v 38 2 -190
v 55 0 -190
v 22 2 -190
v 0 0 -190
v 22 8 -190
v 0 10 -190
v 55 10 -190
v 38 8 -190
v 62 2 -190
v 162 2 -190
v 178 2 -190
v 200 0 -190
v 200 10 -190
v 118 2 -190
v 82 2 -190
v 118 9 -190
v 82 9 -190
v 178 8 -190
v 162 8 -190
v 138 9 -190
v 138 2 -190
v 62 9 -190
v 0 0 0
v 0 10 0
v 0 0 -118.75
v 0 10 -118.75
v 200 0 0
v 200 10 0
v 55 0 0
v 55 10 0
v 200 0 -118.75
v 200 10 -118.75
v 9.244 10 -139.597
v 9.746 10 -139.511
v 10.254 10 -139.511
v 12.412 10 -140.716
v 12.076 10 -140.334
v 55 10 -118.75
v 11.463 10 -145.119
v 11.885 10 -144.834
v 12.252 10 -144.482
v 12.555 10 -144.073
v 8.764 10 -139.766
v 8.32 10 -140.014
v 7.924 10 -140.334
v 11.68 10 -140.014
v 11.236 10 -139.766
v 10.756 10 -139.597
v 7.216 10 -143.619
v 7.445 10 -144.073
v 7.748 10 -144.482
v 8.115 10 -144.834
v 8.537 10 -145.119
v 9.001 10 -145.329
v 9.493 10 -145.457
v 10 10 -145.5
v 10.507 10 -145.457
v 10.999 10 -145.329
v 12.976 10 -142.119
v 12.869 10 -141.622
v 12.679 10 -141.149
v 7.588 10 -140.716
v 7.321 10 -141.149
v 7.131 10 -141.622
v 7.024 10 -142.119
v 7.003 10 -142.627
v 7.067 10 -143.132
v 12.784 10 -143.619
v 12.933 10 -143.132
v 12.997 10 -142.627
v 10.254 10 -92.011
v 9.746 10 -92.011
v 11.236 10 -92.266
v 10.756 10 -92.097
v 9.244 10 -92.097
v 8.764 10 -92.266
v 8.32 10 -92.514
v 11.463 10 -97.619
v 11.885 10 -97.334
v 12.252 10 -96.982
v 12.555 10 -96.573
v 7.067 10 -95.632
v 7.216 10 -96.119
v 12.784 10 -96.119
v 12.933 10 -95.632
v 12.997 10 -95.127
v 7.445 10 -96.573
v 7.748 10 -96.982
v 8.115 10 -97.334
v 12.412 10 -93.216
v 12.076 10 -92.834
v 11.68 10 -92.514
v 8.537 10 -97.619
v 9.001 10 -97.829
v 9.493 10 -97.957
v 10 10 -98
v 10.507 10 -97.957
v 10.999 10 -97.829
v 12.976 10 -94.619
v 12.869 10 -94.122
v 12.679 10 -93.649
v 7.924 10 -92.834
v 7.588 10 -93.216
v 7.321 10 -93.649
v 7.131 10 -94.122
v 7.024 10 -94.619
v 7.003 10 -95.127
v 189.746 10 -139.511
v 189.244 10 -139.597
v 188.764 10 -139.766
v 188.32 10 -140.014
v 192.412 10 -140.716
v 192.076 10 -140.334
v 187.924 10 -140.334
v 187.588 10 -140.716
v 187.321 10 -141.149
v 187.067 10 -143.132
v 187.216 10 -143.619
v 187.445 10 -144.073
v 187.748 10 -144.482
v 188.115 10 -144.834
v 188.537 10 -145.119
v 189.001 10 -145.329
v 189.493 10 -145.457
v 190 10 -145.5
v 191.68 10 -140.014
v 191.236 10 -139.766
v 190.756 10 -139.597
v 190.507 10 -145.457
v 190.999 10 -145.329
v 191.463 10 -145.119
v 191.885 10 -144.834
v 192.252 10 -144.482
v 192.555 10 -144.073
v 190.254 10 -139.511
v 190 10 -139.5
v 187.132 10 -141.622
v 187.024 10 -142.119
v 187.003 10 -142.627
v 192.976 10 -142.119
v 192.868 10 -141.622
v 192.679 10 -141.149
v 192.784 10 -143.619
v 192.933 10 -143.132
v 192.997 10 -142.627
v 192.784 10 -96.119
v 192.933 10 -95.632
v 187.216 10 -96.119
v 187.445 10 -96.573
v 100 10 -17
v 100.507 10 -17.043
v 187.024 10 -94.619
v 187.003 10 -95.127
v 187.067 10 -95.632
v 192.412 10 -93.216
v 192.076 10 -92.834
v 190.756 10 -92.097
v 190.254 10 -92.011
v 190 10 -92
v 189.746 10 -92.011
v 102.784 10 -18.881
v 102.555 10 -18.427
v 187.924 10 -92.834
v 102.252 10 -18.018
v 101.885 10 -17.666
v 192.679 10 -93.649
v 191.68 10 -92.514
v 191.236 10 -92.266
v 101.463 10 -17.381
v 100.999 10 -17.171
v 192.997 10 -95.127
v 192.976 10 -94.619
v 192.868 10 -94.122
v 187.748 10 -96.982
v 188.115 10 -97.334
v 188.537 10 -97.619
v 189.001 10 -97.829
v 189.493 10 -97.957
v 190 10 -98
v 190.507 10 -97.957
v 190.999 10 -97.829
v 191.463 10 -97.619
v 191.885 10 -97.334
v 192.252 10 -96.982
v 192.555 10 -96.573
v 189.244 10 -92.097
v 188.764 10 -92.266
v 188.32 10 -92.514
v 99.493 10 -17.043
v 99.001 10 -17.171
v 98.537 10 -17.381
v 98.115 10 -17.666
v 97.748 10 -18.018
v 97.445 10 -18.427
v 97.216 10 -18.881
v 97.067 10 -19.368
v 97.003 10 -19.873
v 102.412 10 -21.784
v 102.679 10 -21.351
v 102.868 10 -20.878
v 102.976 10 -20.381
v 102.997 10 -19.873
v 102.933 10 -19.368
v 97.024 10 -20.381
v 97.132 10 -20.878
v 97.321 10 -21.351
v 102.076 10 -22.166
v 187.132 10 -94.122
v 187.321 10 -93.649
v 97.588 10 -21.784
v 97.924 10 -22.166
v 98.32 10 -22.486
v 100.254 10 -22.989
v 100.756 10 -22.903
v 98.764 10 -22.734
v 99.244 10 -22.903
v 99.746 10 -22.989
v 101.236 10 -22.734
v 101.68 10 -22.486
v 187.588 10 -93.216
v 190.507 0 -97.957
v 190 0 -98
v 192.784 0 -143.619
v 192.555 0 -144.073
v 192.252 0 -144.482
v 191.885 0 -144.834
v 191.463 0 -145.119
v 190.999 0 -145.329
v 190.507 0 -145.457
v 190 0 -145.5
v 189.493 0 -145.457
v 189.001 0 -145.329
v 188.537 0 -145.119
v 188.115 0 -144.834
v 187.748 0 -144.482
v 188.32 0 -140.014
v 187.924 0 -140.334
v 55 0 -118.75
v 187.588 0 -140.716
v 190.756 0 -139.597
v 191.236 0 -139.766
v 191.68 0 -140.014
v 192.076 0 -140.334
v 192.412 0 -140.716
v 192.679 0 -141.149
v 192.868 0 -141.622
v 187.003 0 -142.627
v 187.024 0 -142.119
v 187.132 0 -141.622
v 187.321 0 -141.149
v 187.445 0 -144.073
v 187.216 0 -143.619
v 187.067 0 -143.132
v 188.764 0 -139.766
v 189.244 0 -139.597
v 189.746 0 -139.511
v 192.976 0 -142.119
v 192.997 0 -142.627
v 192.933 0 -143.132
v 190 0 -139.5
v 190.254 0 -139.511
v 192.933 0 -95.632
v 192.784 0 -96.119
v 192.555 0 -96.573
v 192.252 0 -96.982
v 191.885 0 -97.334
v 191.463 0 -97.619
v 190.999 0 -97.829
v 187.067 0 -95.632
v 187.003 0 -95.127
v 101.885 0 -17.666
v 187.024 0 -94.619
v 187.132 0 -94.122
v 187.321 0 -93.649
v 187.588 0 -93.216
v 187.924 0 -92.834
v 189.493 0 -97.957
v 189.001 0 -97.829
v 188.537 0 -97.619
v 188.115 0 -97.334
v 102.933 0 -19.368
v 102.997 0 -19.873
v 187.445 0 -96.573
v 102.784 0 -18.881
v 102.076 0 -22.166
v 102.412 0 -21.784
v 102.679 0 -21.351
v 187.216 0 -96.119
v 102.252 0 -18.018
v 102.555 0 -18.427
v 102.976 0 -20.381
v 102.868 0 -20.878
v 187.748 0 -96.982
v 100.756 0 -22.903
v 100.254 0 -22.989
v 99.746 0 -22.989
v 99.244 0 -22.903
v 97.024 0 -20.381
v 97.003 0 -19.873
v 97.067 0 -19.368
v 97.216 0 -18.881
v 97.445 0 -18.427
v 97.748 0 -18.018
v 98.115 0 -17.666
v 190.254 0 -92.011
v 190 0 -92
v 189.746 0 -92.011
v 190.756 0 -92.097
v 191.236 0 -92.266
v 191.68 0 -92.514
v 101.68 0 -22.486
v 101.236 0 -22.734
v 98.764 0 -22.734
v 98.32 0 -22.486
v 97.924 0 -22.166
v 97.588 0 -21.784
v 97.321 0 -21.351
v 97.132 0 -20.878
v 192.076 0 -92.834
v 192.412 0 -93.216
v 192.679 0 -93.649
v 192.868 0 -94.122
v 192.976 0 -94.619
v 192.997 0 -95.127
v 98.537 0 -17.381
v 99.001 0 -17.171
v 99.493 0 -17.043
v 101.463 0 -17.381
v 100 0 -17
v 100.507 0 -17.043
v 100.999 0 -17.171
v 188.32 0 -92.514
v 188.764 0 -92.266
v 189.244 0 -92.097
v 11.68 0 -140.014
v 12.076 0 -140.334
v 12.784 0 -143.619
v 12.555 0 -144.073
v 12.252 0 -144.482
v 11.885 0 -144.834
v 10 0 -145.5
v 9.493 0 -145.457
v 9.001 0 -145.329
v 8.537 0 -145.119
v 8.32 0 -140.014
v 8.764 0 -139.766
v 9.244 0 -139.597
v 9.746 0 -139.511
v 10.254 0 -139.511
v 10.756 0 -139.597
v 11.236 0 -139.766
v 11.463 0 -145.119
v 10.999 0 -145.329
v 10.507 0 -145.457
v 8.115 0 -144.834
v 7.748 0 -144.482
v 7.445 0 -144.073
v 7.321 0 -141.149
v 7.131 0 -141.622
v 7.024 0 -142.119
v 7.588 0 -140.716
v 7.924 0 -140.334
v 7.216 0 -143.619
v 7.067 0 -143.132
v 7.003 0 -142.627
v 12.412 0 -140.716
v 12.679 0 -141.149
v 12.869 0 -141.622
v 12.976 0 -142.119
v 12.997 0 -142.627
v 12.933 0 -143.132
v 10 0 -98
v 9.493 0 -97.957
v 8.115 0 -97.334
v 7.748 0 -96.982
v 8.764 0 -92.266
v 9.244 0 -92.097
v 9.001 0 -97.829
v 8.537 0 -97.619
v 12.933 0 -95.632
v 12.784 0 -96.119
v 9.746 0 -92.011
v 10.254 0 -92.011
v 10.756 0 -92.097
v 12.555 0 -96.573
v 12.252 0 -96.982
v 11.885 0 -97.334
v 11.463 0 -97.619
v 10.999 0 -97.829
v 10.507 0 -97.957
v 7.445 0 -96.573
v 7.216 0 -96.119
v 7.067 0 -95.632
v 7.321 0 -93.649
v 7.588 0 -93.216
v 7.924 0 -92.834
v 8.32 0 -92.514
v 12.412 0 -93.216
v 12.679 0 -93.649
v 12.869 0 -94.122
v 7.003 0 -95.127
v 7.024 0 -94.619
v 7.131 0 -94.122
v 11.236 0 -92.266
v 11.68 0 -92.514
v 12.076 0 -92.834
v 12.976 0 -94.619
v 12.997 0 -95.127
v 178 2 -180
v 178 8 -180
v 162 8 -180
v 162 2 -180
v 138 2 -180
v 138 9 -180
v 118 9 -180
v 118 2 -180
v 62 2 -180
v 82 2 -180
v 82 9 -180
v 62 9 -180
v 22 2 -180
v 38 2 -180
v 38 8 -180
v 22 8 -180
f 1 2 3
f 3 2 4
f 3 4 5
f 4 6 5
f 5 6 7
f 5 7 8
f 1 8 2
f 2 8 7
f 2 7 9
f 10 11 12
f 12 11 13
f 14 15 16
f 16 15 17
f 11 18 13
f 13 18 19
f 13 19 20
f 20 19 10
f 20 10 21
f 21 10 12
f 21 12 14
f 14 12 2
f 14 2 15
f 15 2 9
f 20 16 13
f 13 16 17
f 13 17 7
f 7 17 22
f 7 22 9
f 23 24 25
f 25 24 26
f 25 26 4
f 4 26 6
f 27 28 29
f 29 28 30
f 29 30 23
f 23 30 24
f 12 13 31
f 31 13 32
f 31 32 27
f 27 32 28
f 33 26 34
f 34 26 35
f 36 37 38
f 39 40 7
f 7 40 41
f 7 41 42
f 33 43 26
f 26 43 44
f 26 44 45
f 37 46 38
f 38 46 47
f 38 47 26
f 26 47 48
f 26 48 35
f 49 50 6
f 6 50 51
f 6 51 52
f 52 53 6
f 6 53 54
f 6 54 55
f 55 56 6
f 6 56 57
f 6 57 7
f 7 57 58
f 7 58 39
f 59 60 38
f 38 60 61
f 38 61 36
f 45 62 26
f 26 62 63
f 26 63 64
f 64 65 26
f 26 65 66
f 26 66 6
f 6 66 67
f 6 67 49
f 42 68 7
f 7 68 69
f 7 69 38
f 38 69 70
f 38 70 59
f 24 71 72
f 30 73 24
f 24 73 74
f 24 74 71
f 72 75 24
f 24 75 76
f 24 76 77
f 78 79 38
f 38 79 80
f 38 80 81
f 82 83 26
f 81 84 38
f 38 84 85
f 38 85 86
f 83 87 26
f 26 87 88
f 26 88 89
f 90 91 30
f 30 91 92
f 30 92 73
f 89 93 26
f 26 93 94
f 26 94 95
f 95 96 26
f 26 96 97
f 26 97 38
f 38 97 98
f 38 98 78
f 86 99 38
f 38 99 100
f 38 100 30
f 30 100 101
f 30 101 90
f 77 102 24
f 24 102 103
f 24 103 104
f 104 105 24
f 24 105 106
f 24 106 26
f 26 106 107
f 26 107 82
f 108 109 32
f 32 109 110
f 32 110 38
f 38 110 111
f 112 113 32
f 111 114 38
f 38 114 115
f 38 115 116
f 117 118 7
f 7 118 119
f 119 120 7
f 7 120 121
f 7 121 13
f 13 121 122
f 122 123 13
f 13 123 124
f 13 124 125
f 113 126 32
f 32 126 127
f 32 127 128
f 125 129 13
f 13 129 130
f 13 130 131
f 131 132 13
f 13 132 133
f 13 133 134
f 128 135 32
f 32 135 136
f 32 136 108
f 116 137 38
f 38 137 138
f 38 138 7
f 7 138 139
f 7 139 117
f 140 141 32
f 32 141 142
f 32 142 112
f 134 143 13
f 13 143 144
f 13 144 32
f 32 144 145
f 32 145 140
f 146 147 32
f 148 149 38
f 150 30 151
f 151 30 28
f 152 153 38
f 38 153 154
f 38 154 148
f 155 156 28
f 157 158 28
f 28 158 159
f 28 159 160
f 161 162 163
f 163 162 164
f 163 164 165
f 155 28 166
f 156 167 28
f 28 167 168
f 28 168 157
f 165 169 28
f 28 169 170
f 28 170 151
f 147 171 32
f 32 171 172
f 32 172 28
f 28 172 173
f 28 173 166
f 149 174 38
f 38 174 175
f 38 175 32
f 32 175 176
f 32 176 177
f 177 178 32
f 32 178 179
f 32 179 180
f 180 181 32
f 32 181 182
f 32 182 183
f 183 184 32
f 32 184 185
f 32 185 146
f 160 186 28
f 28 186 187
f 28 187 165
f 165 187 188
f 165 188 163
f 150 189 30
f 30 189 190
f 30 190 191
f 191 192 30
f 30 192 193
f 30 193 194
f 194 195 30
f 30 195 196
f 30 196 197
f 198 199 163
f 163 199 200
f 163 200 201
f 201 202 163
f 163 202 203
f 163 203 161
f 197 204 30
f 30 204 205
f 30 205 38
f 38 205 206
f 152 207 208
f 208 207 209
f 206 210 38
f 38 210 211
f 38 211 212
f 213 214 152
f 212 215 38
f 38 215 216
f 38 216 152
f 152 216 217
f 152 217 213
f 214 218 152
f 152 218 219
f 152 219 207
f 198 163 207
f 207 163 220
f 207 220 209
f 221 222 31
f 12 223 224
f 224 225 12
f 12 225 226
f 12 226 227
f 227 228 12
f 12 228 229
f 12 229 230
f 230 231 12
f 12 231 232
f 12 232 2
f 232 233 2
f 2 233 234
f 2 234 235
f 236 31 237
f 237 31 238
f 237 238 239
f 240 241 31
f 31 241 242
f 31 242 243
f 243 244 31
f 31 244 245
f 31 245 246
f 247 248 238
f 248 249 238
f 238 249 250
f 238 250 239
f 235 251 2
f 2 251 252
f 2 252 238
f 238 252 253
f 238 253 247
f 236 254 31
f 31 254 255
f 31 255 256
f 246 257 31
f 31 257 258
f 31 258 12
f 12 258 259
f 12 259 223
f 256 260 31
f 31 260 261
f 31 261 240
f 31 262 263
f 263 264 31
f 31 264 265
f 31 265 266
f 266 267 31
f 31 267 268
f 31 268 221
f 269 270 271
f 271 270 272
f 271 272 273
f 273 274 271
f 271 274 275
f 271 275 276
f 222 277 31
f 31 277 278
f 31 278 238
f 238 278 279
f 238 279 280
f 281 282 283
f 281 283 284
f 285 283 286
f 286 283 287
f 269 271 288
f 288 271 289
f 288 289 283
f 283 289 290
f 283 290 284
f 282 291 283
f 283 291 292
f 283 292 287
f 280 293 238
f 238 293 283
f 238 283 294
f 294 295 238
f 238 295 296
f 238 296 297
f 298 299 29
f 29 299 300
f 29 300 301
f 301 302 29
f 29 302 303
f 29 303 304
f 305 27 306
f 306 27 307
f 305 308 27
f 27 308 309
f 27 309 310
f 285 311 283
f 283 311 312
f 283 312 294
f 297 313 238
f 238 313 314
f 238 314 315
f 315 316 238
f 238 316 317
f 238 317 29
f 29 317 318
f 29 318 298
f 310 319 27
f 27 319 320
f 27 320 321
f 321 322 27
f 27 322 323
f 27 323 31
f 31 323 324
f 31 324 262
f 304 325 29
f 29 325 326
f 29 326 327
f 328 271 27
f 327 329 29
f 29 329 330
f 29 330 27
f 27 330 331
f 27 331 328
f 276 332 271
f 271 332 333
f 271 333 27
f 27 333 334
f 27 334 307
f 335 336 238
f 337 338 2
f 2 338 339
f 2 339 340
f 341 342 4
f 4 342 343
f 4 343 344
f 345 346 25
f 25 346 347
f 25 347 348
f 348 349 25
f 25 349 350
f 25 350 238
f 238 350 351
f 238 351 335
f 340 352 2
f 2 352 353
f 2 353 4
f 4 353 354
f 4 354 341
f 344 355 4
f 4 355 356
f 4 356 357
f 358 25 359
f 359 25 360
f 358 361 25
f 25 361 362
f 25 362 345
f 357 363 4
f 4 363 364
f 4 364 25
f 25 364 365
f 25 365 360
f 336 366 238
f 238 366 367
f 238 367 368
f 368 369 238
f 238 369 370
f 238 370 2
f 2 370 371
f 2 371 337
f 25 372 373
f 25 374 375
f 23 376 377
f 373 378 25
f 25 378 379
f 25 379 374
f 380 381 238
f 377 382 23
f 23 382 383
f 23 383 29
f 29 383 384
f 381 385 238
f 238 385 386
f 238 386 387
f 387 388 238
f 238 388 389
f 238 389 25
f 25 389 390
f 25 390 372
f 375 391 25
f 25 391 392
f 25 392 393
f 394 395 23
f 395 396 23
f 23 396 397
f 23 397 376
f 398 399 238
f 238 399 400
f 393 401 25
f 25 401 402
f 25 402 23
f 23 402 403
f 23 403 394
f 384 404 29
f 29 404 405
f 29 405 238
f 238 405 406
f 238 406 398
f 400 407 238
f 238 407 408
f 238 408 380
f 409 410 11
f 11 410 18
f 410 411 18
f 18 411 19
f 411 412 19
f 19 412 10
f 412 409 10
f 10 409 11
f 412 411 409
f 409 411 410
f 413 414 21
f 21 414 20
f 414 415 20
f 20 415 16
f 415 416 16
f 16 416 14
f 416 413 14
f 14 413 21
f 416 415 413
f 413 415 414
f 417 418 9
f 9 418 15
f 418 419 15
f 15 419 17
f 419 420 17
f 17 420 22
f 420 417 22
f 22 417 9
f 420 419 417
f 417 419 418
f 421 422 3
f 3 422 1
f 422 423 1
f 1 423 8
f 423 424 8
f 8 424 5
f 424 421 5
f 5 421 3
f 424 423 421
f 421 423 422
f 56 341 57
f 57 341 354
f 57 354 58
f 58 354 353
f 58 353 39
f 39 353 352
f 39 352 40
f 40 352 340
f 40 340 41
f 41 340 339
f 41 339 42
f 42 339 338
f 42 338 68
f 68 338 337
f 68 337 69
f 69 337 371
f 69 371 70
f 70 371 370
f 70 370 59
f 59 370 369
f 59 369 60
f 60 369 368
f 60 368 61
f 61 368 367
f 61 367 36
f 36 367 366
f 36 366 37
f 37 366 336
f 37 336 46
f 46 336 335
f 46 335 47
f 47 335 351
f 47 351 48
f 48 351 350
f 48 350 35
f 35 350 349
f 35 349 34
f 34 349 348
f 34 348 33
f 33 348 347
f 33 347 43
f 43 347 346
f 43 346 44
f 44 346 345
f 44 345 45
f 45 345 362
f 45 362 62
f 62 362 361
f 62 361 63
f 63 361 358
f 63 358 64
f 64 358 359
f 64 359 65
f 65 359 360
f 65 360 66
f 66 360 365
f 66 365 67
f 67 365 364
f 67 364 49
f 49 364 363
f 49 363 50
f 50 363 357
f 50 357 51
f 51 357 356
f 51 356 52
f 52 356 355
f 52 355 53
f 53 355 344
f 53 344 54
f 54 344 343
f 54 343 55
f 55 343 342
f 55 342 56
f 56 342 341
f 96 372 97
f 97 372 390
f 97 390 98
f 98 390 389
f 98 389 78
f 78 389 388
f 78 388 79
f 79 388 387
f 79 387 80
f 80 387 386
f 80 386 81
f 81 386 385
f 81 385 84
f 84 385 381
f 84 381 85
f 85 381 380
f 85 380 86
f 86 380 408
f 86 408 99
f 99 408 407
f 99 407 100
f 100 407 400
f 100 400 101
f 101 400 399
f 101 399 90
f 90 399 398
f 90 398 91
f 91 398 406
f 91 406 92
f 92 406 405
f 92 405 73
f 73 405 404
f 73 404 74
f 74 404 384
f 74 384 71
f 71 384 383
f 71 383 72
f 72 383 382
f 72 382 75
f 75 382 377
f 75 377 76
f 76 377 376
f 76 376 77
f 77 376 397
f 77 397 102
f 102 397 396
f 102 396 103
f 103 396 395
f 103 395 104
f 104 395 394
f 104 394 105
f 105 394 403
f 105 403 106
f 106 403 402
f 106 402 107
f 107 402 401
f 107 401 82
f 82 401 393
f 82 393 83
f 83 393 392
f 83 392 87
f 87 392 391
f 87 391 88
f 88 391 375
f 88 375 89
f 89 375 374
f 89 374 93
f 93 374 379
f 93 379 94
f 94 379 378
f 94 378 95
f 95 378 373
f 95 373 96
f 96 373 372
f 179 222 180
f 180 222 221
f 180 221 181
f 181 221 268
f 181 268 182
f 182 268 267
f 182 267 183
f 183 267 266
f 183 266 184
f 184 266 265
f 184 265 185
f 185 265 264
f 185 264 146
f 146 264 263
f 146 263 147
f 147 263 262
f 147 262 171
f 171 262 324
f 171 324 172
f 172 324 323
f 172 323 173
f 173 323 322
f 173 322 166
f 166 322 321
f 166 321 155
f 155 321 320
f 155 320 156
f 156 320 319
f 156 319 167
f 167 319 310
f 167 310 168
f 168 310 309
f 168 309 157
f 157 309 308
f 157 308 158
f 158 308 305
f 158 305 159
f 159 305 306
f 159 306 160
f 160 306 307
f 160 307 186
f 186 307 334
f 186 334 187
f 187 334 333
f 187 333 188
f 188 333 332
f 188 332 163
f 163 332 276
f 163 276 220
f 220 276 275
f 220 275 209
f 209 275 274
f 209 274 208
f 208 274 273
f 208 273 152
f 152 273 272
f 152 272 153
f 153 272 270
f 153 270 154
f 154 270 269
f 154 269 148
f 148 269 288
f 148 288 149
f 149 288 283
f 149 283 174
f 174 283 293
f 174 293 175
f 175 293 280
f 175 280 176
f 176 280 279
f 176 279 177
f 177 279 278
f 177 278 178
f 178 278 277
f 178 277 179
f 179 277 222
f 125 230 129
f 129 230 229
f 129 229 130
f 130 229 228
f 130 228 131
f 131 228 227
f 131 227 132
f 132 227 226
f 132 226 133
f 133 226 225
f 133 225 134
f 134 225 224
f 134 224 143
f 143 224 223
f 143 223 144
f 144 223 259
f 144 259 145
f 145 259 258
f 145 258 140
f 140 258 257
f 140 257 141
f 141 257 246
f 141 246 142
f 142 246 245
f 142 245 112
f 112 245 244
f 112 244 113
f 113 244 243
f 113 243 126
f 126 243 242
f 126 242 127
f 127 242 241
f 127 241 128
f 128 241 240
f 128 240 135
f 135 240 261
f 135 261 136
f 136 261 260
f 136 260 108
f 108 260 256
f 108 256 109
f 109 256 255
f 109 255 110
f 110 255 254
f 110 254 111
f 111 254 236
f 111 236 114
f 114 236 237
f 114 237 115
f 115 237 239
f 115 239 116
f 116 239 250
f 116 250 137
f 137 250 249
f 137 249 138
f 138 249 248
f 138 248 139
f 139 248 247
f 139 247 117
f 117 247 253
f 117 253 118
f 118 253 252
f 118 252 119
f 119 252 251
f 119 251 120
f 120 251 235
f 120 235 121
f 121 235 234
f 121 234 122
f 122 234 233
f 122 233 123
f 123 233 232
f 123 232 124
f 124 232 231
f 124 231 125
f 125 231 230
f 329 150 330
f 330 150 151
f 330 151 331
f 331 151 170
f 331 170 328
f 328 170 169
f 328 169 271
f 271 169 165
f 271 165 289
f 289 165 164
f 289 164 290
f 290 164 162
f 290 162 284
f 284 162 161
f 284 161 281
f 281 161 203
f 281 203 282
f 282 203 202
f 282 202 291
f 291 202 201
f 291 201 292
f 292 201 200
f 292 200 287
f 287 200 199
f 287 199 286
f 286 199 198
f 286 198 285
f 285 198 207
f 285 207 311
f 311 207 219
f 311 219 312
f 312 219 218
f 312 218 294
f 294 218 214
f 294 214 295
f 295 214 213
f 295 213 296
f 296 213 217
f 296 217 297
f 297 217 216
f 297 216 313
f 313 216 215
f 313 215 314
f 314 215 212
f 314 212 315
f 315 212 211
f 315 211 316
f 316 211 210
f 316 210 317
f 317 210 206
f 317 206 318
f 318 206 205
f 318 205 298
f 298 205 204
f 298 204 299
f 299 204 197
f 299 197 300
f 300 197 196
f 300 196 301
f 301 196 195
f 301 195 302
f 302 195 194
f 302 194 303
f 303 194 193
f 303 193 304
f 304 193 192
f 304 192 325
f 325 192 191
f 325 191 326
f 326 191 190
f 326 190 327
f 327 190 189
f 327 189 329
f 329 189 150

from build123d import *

# Parameters (mm, degrees)
SKETCH1_W           = 200
SKETCH1_H           = 190
BOSS_EXTRUDE1_DEPTH = 10
SKETCH2_W           = 20
SKETCH2_H           = 7
SKETCH2_W_2         = 16
SKETCH2_H_2         = 6
CUT_EXTRUDE1_DEPTH  = 10
SKETCH4_R           = 3
CUT_EXTRUDE2_DEPTH  = 10
SKETCH5_R           = 3
CUT_EXTRUDE3_DEPTH  = 10


with BuildPart() as part:
    # Sketch1 → Boss-Extrude1 (new body)
    with BuildSketch(Plane(origin=(0, 0, 0), x_dir=(1, 0, 0), z_dir=(0, 1, 0))):
        with Locations((100, 95)):
            Rectangle(SKETCH1_W, SKETCH1_H)
    extrude(amount=BOSS_EXTRUDE1_DEPTH)

    # Sketch2 → Cut-Extrude1 (cut)
    with BuildSketch(Plane(origin=(0, 0, -190), x_dir=(-1, 0, 0), z_dir=(0, 0, -1))):
        with Locations((-128, 5.5)):
            Rectangle(SKETCH2_W, SKETCH2_H)
        with Locations((-72, 5.5)):
            Rectangle(SKETCH2_W, SKETCH2_H)
        with Locations((-30, 5)):
            Rectangle(SKETCH2_W_2, SKETCH2_H_2)
        with Locations((-170, 5)):
            Rectangle(SKETCH2_W_2, SKETCH2_H_2)
    extrude(amount=-CUT_EXTRUDE1_DEPTH, mode=Mode.SUBTRACT)

    # Sketch4 → Cut-Extrude2 (cut)
    with BuildSketch(Plane(origin=(0, 0, 0), x_dir=(-1, 0, 0), z_dir=(0, -1, 0))):
        with Locations(Location((-10, 142.5, 0), (0, 0, 90))):
            Circle(SKETCH4_R)
        with Locations(Location((-10, 95, 0), (0, 0, 90))):
            Circle(SKETCH4_R)
        with Locations(Location((-190, 95, 0), (0, 0, 270))):
            Circle(SKETCH4_R)
        with Locations(Location((-190, 142.5, 0), (0, 0, 270))):
            Circle(SKETCH4_R)
    extrude(amount=-CUT_EXTRUDE2_DEPTH, mode=Mode.SUBTRACT)

    # Sketch5 → Cut-Extrude3 (cut)
    with BuildSketch(Plane(origin=(0, 10, 0), x_dir=(1, 0, 0), z_dir=(0, 1, 0))):
        with Locations(Location((100, 20, 0), (0, 0, 270))):
            Circle(SKETCH5_R)
    extrude(amount=-CUT_EXTRUDE3_DEPTH, mode=Mode.SUBTRACT)


solid = part.part
